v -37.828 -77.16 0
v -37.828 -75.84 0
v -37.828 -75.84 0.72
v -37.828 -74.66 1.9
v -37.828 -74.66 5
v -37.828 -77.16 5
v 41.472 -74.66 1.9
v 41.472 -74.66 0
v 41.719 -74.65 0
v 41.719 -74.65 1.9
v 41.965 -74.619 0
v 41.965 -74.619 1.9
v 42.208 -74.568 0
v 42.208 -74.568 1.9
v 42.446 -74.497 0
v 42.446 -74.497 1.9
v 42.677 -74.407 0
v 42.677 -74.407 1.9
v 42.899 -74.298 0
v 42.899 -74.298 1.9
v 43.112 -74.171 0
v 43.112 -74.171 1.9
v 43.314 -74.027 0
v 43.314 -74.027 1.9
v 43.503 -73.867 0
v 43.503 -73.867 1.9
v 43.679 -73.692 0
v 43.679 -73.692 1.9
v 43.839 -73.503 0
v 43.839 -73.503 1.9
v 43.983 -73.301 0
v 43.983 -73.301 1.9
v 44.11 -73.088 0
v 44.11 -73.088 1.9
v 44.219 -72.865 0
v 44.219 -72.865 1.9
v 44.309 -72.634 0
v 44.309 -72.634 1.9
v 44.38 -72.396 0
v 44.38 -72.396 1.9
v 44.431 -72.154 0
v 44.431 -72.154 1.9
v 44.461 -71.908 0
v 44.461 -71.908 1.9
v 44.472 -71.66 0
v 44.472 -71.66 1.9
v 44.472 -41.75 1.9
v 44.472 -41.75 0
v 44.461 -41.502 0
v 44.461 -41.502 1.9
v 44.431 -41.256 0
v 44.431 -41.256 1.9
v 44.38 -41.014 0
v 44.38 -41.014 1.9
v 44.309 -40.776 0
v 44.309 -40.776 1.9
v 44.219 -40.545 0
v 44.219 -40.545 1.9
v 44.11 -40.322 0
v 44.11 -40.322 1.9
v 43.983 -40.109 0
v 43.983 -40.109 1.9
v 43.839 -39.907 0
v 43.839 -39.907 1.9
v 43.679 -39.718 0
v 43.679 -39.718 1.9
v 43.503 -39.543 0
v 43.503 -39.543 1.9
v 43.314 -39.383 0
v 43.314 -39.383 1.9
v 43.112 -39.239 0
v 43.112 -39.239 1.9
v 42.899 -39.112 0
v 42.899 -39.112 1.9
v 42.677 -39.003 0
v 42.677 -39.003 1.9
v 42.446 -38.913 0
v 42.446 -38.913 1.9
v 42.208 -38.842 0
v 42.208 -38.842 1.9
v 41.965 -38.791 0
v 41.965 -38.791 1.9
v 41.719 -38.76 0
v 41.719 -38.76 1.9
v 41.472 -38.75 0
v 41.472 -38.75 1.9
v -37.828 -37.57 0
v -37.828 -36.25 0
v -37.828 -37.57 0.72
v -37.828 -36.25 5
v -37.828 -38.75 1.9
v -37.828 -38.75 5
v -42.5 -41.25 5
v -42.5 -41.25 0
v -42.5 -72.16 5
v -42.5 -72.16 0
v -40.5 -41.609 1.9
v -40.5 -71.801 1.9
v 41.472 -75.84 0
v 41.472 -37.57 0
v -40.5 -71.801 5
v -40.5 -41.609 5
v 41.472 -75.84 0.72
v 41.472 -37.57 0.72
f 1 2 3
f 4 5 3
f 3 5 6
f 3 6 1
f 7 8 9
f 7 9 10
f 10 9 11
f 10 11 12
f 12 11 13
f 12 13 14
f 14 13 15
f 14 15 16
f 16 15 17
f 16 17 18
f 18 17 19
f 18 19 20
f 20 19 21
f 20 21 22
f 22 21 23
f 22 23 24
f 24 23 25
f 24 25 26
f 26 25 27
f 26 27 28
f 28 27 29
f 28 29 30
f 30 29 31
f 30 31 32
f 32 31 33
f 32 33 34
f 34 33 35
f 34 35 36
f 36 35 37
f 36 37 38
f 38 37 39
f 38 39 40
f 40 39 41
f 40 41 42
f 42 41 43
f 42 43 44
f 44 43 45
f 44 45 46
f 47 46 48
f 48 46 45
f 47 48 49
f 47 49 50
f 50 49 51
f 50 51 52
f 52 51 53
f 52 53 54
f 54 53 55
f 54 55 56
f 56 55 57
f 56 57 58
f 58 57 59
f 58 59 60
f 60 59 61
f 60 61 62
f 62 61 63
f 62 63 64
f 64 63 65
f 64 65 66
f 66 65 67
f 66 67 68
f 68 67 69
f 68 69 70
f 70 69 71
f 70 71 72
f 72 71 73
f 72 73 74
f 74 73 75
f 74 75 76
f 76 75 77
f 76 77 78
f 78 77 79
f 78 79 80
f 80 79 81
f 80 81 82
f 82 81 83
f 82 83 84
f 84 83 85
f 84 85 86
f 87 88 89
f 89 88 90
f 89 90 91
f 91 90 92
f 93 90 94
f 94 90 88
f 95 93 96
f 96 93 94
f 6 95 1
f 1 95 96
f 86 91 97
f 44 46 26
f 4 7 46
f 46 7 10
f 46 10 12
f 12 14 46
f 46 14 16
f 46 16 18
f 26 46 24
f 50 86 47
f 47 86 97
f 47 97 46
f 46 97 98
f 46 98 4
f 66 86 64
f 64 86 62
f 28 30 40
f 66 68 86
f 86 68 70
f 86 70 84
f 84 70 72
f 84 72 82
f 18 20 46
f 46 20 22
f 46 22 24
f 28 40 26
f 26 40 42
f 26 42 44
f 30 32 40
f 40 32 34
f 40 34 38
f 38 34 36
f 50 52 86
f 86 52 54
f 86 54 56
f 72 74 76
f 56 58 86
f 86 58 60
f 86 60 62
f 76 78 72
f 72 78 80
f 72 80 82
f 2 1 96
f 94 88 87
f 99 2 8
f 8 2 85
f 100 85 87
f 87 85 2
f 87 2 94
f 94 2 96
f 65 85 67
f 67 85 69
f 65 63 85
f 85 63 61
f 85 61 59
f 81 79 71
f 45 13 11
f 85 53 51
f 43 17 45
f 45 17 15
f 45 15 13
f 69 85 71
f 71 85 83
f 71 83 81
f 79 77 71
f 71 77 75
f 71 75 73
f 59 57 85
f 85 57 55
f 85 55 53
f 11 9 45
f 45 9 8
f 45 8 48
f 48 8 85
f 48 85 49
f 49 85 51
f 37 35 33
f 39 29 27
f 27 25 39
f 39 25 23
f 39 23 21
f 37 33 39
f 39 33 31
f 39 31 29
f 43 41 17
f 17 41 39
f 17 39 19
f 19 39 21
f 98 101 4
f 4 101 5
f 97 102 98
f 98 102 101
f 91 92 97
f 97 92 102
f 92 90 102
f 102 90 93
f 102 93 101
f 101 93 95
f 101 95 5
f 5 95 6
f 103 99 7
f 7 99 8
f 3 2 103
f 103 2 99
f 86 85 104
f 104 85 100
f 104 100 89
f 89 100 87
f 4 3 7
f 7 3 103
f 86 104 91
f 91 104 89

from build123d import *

# Parameters (mm, degrees)
BOSS_EXTRUDE1_DEPTH = 1.9
BOSS_EXTRUDE2_DEPTH = 5
SKETCH4_W           = 79.3
SKETCH4_H           = 1.9
BOSS_EXTRUDE3_DEPTH = 1.18
SKETCH5_W           = 79.3
SKETCH5_H           = 1.9
BOSS_EXTRUDE4_DEPTH = 1.18
CHAMFER2_SIZE       = 1.18


with BuildPart() as part:
    # Sketch3 → Boss-Extrude1 (new body)
    with BuildSketch(Plane.XY):
        with BuildLine():
            Line((-37.828427125, -38.75), (-37.828427125, -36.25))
            Line((-37.828427125, -36.25), (-42.5, -41.249558803))
            Line((-42.5, -41.249558803), (-42.5, -72.16))
            Line((-42.5, -72.16), (-37.828427125, -77.16))
            Line((-37.828427125, -77.16), (-37.828427125, -74.66))
            Line((-37.828427125, -74.66), (41.471572875, -74.66))
            ThreePointArc((41.471572875, -74.66), (43.592893219, -73.781320344), (44.471572875, -71.66))
            Line((44.471572875, -71.66), (44.471572875, -41.75))
            ThreePointArc((44.471572875, -41.75), (43.592893219, -39.628679656), (41.471572875, -38.75))
            Line((41.471572875, -38.75), (-37.828427125, -38.75))
        make_face()
    extrude(amount=BOSS_EXTRUDE1_DEPTH)

    # Sketch3<5> → Boss-Extrude2 (add)
    with BuildSketch(Plane.XY):
        Polygon((-37.828427125, -38.75), (-37.828427125, -36.25), (-42.5, -41.249558803), (-42.5, -72.16), (-37.828427125, -77.16), (-37.828427125, -74.66), (-40.5, -71.800606658), (-40.5, -41.609141031), align=None)
    extrude(amount=BOSS_EXTRUDE2_DEPTH)

    # Sketch4 → Boss-Extrude3 (add)
    with BuildSketch(Plane.XZ.offset(74.66)):
        with Locations((1.821572875, 0.95)):
            Rectangle(SKETCH4_W, SKETCH4_H)
    extrude(amount=BOSS_EXTRUDE3_DEPTH)

    # Sketch5 → Boss-Extrude4 (add)
    with BuildSketch(Plane(origin=(0, -38.75, 0), x_dir=(1, 0, 0), z_dir=(0, 1, 0))):
        with Locations((1.821572875, -0.95)):
            Rectangle(SKETCH5_W, SKETCH5_H)
    extrude(amount=BOSS_EXTRUDE4_DEPTH)

    # Chamfer2
    chamfer2_edges = [part.edges().sort_by_distance(p)[0] for p in [
        (1.821572875, -75.84, 1.9),
        (1.821572875, -37.57, 1.9),
    ]]
    chamfer(chamfer2_edges, length=CHAMFER2_SIZE)


solid = part.part
